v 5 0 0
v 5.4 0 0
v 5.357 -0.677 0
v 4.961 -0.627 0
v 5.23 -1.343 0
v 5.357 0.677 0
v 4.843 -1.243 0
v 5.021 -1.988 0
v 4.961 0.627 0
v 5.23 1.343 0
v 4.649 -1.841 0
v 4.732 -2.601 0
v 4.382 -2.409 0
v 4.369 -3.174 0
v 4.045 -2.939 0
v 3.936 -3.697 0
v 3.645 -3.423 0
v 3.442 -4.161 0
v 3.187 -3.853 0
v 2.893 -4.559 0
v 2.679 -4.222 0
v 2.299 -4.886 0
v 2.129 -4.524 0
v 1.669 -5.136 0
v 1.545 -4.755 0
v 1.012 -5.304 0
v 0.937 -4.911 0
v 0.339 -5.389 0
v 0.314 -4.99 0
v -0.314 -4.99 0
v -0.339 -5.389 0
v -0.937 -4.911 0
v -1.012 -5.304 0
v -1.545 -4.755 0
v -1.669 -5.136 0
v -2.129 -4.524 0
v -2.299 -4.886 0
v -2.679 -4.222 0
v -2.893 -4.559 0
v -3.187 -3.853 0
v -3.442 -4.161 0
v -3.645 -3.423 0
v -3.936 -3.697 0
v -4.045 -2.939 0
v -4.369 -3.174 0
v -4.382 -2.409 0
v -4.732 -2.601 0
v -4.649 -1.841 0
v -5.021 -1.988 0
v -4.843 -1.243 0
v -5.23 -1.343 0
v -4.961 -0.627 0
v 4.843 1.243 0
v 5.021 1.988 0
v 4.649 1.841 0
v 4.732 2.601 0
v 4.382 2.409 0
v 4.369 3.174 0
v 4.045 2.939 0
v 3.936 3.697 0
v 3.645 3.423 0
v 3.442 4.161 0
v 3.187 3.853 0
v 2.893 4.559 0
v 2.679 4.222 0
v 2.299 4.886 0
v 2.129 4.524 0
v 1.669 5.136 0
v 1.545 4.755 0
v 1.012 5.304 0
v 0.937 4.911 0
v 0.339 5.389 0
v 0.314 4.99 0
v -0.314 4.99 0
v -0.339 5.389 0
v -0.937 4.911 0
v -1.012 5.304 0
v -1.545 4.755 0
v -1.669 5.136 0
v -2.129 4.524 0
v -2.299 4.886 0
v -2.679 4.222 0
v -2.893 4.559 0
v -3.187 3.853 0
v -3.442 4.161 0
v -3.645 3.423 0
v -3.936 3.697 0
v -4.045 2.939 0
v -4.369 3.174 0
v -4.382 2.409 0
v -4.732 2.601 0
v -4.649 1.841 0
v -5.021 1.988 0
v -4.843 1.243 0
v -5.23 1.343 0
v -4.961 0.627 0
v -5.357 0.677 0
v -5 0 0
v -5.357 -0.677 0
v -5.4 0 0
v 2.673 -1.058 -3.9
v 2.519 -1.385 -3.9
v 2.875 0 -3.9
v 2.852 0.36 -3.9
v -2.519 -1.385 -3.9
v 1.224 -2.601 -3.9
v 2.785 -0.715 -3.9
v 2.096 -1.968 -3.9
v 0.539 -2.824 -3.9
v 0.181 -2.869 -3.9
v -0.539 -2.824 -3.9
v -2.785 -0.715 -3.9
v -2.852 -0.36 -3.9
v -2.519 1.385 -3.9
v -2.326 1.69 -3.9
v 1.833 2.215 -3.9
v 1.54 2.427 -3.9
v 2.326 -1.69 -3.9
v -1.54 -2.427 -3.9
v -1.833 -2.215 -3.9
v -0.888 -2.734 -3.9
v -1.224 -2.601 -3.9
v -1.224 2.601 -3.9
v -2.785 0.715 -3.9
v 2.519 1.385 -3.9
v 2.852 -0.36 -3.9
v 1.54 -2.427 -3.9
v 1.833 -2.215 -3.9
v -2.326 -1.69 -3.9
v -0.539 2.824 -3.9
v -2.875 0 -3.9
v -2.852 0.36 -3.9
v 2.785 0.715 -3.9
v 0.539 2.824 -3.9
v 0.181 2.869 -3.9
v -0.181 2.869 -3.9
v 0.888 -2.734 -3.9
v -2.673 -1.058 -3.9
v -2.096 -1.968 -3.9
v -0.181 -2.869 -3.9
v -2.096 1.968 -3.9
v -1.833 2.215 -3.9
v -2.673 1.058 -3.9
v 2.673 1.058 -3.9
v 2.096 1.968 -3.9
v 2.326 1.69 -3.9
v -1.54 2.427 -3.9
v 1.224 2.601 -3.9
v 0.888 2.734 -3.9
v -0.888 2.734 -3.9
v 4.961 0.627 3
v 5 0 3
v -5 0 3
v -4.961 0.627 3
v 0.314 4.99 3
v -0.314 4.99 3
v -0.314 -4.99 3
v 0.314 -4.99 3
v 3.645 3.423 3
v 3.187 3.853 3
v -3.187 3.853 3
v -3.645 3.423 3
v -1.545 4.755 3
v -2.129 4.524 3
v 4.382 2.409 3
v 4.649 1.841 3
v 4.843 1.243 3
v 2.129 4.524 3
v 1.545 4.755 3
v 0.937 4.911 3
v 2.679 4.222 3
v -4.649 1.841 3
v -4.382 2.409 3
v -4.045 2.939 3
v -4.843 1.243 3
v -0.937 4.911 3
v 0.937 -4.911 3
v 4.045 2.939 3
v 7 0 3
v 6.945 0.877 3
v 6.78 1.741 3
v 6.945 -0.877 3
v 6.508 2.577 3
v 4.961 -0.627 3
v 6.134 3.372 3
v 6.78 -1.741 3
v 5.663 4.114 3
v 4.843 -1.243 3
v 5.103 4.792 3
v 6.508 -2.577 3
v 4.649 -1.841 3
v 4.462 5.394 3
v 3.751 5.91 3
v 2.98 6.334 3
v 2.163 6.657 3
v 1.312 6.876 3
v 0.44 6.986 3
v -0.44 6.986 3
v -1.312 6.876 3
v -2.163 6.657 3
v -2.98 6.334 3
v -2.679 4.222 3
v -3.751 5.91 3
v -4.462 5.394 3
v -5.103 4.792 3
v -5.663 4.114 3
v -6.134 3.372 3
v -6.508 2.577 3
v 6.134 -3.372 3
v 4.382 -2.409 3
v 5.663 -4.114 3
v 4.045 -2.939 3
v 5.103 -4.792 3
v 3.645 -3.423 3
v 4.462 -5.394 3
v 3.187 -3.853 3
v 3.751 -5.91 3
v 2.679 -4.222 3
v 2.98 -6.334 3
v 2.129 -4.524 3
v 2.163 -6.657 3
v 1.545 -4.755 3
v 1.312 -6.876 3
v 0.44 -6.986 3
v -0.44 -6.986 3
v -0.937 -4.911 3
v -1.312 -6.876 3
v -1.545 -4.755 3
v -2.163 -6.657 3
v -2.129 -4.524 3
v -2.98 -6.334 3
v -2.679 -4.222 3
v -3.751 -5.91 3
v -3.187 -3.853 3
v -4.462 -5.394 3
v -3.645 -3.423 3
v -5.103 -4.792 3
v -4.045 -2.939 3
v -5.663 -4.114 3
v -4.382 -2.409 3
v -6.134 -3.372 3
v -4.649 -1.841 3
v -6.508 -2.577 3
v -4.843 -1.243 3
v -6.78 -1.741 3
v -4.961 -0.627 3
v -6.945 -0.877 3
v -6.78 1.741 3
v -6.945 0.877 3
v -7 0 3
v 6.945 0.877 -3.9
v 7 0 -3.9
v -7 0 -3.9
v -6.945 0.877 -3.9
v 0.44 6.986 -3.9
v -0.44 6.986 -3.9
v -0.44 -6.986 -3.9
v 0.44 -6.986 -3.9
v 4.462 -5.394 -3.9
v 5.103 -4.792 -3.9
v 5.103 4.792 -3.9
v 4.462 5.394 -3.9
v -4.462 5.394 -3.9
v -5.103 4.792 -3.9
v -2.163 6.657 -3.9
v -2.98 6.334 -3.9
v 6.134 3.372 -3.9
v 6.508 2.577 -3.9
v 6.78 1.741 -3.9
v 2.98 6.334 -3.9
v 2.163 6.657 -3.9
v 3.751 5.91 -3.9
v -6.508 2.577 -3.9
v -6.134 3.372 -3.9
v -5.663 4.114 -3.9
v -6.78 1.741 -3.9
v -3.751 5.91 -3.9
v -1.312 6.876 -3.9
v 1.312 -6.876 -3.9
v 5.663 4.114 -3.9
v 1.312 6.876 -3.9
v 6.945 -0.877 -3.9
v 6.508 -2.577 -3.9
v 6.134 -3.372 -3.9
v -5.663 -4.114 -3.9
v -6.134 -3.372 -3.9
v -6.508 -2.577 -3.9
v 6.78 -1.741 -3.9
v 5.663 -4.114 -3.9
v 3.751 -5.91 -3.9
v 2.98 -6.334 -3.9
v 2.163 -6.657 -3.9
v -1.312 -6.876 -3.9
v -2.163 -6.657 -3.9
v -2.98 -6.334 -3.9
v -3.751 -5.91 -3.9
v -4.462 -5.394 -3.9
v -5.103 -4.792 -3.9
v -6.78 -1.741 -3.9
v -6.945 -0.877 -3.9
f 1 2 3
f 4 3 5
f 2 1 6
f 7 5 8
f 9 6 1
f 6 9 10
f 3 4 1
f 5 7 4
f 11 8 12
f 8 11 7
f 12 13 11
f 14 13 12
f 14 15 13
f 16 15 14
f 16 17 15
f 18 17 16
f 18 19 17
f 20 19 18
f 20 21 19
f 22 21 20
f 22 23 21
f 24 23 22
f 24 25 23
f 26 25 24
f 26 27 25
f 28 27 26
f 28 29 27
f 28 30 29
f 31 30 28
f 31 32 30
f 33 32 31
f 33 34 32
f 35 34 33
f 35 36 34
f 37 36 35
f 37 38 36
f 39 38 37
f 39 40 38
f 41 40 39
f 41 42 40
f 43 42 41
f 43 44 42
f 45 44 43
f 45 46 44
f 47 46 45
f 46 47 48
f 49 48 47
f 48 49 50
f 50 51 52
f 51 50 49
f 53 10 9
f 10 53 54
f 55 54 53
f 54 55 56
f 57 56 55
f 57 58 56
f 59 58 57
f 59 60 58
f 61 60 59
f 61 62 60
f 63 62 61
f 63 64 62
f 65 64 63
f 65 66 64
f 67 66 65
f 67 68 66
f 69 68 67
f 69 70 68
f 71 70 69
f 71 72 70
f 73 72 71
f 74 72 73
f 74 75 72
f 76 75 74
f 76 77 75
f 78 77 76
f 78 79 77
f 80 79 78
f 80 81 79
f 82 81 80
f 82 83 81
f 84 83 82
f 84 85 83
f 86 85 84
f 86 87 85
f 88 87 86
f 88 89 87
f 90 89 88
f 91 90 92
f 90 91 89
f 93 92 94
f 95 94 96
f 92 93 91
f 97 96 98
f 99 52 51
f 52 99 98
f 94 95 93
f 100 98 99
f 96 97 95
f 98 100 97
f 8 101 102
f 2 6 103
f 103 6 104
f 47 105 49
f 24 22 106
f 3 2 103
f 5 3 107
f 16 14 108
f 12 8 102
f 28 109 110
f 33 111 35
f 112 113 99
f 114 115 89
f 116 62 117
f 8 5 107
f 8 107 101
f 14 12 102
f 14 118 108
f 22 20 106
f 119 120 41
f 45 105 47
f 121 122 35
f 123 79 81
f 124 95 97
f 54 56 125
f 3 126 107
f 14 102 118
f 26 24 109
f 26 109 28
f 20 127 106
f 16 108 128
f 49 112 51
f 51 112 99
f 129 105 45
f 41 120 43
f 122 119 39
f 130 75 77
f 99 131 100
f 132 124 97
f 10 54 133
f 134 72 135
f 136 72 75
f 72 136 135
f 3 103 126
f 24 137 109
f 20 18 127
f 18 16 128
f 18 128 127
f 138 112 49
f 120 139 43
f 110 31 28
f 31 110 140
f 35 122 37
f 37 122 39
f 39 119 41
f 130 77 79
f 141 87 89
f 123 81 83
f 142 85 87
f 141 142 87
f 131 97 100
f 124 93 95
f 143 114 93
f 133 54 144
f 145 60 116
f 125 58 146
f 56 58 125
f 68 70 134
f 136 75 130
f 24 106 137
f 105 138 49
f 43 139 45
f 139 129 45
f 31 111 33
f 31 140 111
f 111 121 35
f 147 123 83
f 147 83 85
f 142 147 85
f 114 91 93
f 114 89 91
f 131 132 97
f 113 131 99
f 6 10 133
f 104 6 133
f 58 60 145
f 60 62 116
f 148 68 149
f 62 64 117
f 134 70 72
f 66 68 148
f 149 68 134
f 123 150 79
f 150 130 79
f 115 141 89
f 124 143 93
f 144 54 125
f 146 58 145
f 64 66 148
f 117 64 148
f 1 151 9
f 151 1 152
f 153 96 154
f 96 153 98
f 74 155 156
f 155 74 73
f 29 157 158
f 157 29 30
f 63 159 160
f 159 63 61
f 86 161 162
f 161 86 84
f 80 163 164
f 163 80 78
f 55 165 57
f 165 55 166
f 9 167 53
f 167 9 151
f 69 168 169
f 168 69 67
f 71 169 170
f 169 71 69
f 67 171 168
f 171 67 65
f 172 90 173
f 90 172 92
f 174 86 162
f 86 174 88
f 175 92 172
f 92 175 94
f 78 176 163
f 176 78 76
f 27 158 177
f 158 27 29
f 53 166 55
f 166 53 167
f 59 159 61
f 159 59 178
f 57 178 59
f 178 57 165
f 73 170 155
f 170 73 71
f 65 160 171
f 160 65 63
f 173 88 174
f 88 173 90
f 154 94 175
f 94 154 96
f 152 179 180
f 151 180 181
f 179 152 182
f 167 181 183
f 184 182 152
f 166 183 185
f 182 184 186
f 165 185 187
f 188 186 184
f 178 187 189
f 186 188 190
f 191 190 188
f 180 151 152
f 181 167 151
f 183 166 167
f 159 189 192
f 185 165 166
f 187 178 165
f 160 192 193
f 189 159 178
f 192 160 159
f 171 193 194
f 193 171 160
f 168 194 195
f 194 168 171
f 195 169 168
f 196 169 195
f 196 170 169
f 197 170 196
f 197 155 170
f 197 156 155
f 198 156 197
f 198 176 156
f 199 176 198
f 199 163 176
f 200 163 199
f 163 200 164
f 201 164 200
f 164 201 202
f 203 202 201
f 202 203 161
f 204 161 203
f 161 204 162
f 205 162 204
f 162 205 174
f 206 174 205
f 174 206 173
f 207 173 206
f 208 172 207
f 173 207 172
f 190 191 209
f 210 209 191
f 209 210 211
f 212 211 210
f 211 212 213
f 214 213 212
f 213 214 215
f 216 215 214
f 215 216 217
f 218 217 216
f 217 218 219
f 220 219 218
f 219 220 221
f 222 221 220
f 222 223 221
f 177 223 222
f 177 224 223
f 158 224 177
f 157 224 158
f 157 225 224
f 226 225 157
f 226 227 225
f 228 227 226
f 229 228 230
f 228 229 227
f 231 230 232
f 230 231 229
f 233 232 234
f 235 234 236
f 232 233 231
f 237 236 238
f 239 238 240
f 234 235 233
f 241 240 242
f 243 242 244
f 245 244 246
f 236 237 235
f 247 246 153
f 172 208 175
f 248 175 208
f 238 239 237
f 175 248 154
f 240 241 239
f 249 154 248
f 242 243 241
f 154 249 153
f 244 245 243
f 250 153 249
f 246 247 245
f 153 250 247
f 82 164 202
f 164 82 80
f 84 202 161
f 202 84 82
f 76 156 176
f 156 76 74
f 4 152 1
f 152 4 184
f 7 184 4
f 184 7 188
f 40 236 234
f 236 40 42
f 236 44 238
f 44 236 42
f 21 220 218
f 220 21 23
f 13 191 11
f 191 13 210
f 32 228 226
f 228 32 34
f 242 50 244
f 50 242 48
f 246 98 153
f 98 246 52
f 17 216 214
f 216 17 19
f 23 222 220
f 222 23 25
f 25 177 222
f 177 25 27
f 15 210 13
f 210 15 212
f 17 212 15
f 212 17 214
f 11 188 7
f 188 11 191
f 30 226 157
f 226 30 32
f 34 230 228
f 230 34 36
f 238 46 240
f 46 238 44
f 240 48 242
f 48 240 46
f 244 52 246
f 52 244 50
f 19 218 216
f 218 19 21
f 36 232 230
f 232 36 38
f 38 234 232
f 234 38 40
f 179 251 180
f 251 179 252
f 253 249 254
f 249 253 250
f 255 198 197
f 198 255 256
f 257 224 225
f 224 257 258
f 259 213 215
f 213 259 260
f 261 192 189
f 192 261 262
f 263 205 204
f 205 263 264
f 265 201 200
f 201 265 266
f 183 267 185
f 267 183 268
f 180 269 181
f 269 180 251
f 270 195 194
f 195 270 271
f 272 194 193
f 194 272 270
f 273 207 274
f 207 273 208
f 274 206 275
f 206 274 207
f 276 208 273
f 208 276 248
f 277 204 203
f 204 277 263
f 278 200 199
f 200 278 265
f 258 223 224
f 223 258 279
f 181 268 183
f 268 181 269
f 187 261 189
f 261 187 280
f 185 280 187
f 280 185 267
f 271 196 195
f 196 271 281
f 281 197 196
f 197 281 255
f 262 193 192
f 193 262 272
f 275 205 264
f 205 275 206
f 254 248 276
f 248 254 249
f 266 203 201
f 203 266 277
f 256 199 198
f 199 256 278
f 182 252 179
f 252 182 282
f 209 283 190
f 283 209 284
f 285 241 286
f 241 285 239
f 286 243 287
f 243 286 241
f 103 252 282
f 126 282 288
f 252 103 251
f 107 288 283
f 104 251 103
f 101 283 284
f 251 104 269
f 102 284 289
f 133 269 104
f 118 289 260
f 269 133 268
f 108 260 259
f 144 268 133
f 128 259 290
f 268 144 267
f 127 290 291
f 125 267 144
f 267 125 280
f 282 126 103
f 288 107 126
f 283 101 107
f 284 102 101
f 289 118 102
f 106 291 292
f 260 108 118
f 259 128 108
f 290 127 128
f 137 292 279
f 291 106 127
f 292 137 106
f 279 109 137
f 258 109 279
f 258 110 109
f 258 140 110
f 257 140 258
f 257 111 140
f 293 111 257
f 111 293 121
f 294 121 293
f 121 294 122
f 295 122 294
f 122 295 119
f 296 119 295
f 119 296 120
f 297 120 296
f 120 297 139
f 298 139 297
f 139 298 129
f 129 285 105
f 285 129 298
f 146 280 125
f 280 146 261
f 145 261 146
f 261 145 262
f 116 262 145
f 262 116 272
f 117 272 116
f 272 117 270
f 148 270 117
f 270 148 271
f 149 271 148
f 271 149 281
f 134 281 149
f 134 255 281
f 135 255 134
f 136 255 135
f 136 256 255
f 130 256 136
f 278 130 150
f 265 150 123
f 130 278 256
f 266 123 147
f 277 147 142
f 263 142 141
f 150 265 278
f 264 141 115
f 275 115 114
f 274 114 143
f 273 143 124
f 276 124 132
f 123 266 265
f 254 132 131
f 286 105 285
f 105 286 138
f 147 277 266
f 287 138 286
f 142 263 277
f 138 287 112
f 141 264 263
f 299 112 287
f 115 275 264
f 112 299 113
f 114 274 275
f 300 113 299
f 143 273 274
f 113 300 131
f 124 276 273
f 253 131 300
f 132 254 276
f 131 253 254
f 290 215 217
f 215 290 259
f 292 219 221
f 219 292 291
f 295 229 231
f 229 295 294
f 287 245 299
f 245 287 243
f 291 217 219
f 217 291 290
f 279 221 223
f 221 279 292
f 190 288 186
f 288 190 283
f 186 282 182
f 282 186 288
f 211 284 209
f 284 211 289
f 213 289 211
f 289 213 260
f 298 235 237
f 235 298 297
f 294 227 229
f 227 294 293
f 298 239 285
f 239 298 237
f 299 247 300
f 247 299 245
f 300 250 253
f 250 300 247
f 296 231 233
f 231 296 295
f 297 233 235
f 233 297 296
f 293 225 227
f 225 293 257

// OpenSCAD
$fn = 50;

difference() {
	union() {
		translate(v = [0, 0, -3.9000000000000004]) {
			cylinder(h = 6.9, r = 7.0);
		}
	}
	union() {
		translate(v = [0, 0, 0]) {
			rotate(a = [0, 0, 0]) {
				difference() {
					union() {
						translate(v = [0, 0, -6.9]) {
							cylinder(h = 6.9, r = 2.6);
						}
						translate(v = [0, 0, -3.9]) {
							cylinder(h = 3.9, r1 = 2.875, r2 = 5.4);
						}
						translate(v = [0, 0, -6.9]) {
							cylinder(h = 6.9, r = 2.875);
						}
						translate(v = [0, 0, -6.9]) {
							cylinder(h = 6.9, r = 2.6);
						}
					}
					union();
				}
			}
		}
		#cylinder(h = 3, r = 5.0);
	}
}
